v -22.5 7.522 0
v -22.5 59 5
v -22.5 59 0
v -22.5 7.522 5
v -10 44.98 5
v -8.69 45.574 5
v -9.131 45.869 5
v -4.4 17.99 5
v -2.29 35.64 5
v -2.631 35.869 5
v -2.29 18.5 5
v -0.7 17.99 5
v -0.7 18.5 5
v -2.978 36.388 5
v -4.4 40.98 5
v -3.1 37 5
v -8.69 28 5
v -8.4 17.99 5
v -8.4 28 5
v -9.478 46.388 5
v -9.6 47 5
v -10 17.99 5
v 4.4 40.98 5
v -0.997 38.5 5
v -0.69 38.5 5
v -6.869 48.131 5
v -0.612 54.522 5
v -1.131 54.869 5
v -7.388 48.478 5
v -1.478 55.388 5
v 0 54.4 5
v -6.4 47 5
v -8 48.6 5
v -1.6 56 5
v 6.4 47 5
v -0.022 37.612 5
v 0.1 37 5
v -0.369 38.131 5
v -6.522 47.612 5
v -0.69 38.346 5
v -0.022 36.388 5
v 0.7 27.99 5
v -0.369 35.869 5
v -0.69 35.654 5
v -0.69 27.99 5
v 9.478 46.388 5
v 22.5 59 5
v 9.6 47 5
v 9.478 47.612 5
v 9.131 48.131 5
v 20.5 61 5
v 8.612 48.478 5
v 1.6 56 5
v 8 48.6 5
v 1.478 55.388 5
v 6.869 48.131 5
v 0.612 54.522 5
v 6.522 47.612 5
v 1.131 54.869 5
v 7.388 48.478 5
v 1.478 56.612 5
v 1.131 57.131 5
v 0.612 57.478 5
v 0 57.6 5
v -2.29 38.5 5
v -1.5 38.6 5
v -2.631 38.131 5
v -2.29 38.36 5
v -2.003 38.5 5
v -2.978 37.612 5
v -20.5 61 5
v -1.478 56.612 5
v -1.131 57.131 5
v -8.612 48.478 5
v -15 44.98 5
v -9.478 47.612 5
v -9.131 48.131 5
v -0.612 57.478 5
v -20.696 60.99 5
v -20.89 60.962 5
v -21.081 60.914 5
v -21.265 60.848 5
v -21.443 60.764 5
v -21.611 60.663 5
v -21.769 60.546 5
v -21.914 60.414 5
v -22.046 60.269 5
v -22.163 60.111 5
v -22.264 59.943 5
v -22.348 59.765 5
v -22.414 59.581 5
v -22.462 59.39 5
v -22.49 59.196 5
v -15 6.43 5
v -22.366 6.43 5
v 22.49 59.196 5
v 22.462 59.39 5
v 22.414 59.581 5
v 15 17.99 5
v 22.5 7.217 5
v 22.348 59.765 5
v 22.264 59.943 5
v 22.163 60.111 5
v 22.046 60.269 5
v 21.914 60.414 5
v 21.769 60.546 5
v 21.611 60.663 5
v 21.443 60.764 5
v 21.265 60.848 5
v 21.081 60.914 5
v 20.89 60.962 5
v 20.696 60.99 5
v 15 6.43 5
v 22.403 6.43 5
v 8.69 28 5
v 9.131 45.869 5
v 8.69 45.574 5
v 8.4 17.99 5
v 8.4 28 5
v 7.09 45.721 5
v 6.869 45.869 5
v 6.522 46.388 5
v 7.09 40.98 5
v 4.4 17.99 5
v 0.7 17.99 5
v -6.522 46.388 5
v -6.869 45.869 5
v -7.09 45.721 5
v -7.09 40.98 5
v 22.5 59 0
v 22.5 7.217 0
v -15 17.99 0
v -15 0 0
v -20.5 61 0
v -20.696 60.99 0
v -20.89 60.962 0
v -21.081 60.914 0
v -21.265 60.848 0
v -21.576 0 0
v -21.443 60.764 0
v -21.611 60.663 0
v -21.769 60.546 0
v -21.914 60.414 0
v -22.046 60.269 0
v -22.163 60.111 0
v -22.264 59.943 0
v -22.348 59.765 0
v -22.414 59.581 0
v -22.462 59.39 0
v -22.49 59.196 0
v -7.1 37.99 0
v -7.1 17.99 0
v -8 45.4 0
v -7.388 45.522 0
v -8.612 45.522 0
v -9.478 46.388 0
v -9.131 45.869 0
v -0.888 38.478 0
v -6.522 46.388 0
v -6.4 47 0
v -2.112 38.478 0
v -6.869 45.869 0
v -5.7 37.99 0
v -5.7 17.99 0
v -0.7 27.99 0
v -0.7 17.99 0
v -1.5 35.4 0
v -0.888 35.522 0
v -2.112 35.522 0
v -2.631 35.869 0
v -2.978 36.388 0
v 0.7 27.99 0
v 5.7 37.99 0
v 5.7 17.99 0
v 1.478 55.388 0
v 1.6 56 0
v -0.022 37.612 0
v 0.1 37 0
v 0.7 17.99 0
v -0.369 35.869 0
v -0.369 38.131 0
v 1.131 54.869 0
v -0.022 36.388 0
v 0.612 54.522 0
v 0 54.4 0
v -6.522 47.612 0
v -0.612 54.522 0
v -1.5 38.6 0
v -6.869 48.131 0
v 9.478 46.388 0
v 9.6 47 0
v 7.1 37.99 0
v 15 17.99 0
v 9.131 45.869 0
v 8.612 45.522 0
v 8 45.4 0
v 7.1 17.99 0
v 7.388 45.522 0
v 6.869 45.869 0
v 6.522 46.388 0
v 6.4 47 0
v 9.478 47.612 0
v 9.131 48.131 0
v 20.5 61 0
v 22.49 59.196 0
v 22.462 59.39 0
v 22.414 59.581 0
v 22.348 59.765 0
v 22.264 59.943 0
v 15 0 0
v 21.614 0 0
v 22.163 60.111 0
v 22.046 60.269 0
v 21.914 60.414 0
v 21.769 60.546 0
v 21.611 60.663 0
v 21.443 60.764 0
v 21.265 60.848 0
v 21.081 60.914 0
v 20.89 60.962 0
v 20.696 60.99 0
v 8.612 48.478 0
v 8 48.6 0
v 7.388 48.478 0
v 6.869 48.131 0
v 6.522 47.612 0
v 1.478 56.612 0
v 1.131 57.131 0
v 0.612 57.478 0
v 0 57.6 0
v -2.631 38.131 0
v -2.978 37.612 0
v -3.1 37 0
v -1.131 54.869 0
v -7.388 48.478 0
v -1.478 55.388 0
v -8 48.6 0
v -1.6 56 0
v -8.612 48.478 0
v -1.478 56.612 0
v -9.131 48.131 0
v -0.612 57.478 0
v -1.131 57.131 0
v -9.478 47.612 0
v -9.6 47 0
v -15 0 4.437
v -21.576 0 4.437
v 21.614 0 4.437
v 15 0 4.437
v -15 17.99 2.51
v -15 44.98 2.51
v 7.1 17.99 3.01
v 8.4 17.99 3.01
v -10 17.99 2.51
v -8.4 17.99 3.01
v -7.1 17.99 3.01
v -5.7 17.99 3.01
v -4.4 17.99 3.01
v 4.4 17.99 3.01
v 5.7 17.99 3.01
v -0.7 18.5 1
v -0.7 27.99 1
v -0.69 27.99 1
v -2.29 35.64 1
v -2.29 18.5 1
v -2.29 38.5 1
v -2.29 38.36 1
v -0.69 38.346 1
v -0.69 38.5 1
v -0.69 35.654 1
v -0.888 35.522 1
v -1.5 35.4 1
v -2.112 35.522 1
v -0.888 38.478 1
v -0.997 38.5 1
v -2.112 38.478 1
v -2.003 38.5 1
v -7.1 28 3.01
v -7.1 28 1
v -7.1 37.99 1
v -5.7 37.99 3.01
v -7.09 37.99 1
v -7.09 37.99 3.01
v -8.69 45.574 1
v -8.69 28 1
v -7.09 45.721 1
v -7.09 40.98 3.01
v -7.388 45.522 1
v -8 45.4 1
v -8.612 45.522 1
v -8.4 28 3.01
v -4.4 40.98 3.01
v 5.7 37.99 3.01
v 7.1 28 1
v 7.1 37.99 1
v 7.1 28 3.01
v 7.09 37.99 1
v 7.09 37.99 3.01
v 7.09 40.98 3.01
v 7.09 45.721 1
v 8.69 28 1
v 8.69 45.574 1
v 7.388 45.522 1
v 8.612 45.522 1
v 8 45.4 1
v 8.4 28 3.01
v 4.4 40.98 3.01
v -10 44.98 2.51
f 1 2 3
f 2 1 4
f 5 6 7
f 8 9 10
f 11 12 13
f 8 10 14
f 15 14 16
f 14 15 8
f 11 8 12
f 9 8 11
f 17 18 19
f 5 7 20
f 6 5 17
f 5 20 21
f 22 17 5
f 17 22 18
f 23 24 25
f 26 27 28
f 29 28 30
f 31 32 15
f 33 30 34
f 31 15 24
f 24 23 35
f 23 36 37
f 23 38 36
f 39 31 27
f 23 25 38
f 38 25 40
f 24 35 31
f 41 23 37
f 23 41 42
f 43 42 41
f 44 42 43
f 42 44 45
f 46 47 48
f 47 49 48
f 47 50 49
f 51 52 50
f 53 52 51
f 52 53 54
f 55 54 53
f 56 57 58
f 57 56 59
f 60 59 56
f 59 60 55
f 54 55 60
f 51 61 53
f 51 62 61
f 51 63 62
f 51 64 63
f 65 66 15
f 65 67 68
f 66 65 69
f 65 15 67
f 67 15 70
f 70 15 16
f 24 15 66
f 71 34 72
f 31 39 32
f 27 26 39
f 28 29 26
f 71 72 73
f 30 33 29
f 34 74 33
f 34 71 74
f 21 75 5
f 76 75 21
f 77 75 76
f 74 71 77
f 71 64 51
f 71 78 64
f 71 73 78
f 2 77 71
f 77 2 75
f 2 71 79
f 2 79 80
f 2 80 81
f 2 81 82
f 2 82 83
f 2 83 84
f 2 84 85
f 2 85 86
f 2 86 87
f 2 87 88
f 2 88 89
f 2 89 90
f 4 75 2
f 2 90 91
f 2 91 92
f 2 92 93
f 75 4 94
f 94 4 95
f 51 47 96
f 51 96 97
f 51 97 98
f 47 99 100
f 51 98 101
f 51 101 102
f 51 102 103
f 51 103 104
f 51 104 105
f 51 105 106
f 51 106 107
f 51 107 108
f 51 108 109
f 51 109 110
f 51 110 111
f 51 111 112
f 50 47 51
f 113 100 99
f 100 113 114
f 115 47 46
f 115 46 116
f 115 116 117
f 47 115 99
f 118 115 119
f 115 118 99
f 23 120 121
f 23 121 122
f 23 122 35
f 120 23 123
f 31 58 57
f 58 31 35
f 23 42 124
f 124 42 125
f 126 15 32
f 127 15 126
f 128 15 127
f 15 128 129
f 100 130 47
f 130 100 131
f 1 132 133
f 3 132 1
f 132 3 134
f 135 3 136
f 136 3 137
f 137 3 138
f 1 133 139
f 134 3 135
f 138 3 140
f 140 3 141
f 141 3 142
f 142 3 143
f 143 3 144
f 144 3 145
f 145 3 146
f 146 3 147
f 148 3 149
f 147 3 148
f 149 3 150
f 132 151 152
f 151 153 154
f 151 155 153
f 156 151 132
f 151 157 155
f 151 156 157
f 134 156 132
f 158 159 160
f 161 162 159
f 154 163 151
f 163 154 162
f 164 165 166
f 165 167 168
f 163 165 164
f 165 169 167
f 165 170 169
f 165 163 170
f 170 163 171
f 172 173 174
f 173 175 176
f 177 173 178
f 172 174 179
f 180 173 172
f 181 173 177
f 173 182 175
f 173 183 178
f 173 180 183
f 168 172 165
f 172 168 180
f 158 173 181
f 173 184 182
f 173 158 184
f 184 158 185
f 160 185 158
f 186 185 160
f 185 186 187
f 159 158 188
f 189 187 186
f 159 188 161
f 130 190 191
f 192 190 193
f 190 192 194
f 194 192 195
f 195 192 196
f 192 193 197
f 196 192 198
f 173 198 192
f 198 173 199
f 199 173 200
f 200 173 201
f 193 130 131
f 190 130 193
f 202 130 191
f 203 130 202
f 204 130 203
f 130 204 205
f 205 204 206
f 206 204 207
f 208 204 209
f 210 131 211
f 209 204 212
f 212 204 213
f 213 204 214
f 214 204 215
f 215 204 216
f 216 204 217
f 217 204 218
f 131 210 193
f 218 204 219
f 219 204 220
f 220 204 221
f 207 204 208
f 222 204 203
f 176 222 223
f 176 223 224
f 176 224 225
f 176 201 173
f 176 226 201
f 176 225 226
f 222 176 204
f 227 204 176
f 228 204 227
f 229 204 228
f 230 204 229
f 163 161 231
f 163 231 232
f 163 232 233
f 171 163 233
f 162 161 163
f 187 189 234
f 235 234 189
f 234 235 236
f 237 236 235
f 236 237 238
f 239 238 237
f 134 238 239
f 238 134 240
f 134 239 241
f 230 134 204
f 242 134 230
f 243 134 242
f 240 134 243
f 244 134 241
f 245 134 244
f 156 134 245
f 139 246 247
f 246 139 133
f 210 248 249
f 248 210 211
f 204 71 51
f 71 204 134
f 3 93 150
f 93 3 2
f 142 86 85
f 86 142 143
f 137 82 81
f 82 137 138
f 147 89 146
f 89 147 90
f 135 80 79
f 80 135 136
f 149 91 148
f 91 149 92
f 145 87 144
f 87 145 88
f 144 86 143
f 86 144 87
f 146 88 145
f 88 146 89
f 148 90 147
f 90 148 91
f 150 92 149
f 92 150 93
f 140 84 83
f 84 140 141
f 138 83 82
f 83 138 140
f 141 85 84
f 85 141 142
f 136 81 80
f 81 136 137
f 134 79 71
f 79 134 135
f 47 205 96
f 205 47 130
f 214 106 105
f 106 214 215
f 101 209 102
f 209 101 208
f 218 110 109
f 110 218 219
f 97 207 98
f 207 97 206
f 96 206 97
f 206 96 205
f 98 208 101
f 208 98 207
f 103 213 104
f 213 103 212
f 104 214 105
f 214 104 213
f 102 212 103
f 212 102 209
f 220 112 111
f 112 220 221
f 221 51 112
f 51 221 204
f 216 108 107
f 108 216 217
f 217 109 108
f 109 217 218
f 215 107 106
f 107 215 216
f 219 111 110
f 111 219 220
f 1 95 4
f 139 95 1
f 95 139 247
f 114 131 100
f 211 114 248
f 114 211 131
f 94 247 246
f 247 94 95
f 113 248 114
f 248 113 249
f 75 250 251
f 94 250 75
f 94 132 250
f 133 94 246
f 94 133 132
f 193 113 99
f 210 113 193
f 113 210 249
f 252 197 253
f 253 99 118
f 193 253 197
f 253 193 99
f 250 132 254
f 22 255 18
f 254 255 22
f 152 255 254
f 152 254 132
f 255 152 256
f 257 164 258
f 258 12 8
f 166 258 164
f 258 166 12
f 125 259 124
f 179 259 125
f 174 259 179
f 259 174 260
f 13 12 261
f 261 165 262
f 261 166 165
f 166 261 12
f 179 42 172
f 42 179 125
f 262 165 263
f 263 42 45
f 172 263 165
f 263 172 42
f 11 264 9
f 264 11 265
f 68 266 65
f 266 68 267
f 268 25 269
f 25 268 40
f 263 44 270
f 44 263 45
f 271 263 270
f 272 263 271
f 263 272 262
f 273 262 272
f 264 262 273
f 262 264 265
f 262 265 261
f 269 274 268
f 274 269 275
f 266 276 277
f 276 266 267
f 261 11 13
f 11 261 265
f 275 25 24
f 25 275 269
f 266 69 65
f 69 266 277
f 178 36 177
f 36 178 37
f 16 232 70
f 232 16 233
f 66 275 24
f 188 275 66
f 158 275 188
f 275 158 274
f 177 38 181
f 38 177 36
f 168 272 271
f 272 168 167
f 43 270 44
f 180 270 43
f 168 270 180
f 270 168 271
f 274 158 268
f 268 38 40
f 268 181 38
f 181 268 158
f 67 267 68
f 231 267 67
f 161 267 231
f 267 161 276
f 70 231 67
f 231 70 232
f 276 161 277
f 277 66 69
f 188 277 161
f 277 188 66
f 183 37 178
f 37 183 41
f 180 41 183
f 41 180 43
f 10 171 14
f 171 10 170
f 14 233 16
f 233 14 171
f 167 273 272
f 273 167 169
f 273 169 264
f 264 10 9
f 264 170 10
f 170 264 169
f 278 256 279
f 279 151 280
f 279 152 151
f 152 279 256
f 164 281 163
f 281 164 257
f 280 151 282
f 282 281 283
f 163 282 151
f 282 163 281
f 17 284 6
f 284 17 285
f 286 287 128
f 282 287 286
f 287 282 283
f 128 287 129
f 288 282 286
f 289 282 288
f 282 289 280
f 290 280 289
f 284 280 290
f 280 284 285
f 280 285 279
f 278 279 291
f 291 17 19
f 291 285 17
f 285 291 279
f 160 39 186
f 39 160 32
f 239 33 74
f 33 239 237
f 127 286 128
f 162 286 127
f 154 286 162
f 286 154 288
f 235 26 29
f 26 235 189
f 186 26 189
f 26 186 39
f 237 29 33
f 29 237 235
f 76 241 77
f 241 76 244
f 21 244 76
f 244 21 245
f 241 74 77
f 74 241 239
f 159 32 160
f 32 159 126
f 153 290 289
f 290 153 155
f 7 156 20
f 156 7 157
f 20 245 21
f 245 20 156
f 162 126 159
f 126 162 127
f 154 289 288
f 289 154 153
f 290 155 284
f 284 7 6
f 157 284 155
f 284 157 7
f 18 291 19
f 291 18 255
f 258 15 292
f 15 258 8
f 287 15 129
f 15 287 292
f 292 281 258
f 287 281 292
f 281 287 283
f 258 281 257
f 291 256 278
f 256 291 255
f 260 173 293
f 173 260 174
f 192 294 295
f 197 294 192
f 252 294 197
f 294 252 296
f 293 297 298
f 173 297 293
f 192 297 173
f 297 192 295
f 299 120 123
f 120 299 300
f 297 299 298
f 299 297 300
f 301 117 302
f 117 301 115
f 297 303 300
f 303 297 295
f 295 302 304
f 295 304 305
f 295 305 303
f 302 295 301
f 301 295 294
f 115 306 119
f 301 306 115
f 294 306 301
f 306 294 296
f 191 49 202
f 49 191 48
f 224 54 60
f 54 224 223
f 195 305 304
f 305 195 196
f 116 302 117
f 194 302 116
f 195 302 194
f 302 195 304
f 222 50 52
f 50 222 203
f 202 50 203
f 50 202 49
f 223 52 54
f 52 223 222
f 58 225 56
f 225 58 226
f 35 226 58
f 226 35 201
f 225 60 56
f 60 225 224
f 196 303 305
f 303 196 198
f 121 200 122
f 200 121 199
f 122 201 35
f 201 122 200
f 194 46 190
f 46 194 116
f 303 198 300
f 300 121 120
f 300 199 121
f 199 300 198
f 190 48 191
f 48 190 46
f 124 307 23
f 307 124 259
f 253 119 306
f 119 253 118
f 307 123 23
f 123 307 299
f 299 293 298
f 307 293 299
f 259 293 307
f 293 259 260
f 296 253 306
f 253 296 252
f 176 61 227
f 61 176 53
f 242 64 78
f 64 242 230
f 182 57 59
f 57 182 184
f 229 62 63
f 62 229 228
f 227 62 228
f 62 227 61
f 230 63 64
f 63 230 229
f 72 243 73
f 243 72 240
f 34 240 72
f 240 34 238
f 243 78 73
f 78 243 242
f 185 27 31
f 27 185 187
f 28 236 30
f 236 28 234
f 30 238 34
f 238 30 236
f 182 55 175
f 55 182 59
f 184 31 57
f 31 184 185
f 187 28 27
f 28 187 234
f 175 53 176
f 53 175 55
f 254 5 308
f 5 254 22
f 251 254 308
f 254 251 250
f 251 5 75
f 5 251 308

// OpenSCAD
//OpenSCAD-Skript

//Moduldefinition mit Parametern
module Adapt (
//Parameter
hght1=5,hght2=4.2,
lngth=61,wdth=45,
slot1=1.4,slot2=1.6,
cut1=18,cut2=30,
dist1=20,dist2=10,
nutb=5,nuth=2.5)
//Beginn Modul
{
difference(){   //difference 1
union(){        //union 1
difference(){   //difference 2
union(){        //union 2
    //alles, was vor der nächsten geschweiften Klammer steht, wird zusammengefügt (union 2)
//Block
translate([-wdth/2, 0, 0])
cube([wdth, lngth-2, hght1]);
translate([-wdth/2+2, lngth-2, 0])
cube([wdth-4, 2, hght1]);
translate([-wdth/2+2, lngth-2, 0])
cylinder(d=4, h=hght1, $fn=64);
translate([wdth/2-2, lngth-2, 0])
cylinder(d=4, h=hght1, $fn=64);
}               //union 2 end
    //alles, was vor der nächsten geschweiften Klammer steht, wird davon abgezogen (difference 2)
//Anschnitte
translate([-wdth/2-3.5, -5, -0.01])
rotate([0,0,7])
cube([5, 25, 2*hght1]);
translate([wdth/2-1.5, -5, -0.01])
rotate([0,0,-7])
cube([5, 25, 2*hght1]);
translate([-wdth/2-1.5, -5, hght1-1])
rotate([5,0,0])
cube([50, 25, 2*hght1]);
//Ausschnitt
translate([-cut2/2, -0.01, -0.01])
cube([cut2, cut1, 2*hght1]);
//Schlitz für Mittenkontakt
translate([-slot1/2, -0.01, -0.01])
cube([slot1, cut1+dist2, 2*hght1]);
translate([-slot1/2-slot2+0.01, cut1+dist2-9.5, 1])
cube([slot2, dist1, 2*hght1]);
translate([-slot1/2-slot2/2, cut1+dist1-1, -0.01])
cylinder(d=3.2, h=2*hght1, $fn=16);
//Schlitz für linken Kontakt
translate([-5-slot1-slot1/2, -0.01, -0.01])
cube([slot1, cut1+dist1, 2*hght1]);
translate([-5-slot1-slot1/2-slot2+0.01, cut1+dist1-10, 1])
cube([slot2, dist1, 2*hght1]);
translate([-5-slot1-slot2, cut1+dist1+dist2-1, -0.01])
cylinder(d=3.2, h=2*hght1, $fn=16);
translate([-5-slot1-2, cut1-0.02, hght1-2+0.01])
cube([4, dist1+3, 2]);
//Schlitz für rechten Kontakt
translate([5+slot1/2, -0.01, -0.01])
cube([slot1, cut1+dist1, 2*hght1]);
translate([5+slot1/2+slot1-0.01, cut1+dist1-10, 1])
cube([slot2, dist1, 2*hght1]);
translate([5+slot1+slot2, cut1+dist1+dist2-1, -0.01])
cylinder(d=3.2, h=2*hght1, $fn=16);
translate([5+slot1-2, cut1-0.02, hght1-2+0.01])
cube([4, dist1+3, 2]);
//Bohrung
translate([0, lngth-5, -0.01])
cylinder(d=3.2, h=2*hght1, $fn=16);

//Schienennut
translate([-cut2/2, cut1-0.02, hght1-nuth+0.01])
cube([nutb, dist1+7, nuth]);
}  //difference 2 end
    //alles, was vor der nächsten geschweiften Klammer steht, wird dazu hinzugefügt (union 1)
//Text


}               //union 1 end
    //alles, was vor der nächsten geschweiften Klammer steht, wird davon wieder abgezogen (difference 1)

}               //difference 1 end

}  //module end

//Hier werden Instanzen des Moduls aufgerufen
translate([0,0,0]) Adapt();
